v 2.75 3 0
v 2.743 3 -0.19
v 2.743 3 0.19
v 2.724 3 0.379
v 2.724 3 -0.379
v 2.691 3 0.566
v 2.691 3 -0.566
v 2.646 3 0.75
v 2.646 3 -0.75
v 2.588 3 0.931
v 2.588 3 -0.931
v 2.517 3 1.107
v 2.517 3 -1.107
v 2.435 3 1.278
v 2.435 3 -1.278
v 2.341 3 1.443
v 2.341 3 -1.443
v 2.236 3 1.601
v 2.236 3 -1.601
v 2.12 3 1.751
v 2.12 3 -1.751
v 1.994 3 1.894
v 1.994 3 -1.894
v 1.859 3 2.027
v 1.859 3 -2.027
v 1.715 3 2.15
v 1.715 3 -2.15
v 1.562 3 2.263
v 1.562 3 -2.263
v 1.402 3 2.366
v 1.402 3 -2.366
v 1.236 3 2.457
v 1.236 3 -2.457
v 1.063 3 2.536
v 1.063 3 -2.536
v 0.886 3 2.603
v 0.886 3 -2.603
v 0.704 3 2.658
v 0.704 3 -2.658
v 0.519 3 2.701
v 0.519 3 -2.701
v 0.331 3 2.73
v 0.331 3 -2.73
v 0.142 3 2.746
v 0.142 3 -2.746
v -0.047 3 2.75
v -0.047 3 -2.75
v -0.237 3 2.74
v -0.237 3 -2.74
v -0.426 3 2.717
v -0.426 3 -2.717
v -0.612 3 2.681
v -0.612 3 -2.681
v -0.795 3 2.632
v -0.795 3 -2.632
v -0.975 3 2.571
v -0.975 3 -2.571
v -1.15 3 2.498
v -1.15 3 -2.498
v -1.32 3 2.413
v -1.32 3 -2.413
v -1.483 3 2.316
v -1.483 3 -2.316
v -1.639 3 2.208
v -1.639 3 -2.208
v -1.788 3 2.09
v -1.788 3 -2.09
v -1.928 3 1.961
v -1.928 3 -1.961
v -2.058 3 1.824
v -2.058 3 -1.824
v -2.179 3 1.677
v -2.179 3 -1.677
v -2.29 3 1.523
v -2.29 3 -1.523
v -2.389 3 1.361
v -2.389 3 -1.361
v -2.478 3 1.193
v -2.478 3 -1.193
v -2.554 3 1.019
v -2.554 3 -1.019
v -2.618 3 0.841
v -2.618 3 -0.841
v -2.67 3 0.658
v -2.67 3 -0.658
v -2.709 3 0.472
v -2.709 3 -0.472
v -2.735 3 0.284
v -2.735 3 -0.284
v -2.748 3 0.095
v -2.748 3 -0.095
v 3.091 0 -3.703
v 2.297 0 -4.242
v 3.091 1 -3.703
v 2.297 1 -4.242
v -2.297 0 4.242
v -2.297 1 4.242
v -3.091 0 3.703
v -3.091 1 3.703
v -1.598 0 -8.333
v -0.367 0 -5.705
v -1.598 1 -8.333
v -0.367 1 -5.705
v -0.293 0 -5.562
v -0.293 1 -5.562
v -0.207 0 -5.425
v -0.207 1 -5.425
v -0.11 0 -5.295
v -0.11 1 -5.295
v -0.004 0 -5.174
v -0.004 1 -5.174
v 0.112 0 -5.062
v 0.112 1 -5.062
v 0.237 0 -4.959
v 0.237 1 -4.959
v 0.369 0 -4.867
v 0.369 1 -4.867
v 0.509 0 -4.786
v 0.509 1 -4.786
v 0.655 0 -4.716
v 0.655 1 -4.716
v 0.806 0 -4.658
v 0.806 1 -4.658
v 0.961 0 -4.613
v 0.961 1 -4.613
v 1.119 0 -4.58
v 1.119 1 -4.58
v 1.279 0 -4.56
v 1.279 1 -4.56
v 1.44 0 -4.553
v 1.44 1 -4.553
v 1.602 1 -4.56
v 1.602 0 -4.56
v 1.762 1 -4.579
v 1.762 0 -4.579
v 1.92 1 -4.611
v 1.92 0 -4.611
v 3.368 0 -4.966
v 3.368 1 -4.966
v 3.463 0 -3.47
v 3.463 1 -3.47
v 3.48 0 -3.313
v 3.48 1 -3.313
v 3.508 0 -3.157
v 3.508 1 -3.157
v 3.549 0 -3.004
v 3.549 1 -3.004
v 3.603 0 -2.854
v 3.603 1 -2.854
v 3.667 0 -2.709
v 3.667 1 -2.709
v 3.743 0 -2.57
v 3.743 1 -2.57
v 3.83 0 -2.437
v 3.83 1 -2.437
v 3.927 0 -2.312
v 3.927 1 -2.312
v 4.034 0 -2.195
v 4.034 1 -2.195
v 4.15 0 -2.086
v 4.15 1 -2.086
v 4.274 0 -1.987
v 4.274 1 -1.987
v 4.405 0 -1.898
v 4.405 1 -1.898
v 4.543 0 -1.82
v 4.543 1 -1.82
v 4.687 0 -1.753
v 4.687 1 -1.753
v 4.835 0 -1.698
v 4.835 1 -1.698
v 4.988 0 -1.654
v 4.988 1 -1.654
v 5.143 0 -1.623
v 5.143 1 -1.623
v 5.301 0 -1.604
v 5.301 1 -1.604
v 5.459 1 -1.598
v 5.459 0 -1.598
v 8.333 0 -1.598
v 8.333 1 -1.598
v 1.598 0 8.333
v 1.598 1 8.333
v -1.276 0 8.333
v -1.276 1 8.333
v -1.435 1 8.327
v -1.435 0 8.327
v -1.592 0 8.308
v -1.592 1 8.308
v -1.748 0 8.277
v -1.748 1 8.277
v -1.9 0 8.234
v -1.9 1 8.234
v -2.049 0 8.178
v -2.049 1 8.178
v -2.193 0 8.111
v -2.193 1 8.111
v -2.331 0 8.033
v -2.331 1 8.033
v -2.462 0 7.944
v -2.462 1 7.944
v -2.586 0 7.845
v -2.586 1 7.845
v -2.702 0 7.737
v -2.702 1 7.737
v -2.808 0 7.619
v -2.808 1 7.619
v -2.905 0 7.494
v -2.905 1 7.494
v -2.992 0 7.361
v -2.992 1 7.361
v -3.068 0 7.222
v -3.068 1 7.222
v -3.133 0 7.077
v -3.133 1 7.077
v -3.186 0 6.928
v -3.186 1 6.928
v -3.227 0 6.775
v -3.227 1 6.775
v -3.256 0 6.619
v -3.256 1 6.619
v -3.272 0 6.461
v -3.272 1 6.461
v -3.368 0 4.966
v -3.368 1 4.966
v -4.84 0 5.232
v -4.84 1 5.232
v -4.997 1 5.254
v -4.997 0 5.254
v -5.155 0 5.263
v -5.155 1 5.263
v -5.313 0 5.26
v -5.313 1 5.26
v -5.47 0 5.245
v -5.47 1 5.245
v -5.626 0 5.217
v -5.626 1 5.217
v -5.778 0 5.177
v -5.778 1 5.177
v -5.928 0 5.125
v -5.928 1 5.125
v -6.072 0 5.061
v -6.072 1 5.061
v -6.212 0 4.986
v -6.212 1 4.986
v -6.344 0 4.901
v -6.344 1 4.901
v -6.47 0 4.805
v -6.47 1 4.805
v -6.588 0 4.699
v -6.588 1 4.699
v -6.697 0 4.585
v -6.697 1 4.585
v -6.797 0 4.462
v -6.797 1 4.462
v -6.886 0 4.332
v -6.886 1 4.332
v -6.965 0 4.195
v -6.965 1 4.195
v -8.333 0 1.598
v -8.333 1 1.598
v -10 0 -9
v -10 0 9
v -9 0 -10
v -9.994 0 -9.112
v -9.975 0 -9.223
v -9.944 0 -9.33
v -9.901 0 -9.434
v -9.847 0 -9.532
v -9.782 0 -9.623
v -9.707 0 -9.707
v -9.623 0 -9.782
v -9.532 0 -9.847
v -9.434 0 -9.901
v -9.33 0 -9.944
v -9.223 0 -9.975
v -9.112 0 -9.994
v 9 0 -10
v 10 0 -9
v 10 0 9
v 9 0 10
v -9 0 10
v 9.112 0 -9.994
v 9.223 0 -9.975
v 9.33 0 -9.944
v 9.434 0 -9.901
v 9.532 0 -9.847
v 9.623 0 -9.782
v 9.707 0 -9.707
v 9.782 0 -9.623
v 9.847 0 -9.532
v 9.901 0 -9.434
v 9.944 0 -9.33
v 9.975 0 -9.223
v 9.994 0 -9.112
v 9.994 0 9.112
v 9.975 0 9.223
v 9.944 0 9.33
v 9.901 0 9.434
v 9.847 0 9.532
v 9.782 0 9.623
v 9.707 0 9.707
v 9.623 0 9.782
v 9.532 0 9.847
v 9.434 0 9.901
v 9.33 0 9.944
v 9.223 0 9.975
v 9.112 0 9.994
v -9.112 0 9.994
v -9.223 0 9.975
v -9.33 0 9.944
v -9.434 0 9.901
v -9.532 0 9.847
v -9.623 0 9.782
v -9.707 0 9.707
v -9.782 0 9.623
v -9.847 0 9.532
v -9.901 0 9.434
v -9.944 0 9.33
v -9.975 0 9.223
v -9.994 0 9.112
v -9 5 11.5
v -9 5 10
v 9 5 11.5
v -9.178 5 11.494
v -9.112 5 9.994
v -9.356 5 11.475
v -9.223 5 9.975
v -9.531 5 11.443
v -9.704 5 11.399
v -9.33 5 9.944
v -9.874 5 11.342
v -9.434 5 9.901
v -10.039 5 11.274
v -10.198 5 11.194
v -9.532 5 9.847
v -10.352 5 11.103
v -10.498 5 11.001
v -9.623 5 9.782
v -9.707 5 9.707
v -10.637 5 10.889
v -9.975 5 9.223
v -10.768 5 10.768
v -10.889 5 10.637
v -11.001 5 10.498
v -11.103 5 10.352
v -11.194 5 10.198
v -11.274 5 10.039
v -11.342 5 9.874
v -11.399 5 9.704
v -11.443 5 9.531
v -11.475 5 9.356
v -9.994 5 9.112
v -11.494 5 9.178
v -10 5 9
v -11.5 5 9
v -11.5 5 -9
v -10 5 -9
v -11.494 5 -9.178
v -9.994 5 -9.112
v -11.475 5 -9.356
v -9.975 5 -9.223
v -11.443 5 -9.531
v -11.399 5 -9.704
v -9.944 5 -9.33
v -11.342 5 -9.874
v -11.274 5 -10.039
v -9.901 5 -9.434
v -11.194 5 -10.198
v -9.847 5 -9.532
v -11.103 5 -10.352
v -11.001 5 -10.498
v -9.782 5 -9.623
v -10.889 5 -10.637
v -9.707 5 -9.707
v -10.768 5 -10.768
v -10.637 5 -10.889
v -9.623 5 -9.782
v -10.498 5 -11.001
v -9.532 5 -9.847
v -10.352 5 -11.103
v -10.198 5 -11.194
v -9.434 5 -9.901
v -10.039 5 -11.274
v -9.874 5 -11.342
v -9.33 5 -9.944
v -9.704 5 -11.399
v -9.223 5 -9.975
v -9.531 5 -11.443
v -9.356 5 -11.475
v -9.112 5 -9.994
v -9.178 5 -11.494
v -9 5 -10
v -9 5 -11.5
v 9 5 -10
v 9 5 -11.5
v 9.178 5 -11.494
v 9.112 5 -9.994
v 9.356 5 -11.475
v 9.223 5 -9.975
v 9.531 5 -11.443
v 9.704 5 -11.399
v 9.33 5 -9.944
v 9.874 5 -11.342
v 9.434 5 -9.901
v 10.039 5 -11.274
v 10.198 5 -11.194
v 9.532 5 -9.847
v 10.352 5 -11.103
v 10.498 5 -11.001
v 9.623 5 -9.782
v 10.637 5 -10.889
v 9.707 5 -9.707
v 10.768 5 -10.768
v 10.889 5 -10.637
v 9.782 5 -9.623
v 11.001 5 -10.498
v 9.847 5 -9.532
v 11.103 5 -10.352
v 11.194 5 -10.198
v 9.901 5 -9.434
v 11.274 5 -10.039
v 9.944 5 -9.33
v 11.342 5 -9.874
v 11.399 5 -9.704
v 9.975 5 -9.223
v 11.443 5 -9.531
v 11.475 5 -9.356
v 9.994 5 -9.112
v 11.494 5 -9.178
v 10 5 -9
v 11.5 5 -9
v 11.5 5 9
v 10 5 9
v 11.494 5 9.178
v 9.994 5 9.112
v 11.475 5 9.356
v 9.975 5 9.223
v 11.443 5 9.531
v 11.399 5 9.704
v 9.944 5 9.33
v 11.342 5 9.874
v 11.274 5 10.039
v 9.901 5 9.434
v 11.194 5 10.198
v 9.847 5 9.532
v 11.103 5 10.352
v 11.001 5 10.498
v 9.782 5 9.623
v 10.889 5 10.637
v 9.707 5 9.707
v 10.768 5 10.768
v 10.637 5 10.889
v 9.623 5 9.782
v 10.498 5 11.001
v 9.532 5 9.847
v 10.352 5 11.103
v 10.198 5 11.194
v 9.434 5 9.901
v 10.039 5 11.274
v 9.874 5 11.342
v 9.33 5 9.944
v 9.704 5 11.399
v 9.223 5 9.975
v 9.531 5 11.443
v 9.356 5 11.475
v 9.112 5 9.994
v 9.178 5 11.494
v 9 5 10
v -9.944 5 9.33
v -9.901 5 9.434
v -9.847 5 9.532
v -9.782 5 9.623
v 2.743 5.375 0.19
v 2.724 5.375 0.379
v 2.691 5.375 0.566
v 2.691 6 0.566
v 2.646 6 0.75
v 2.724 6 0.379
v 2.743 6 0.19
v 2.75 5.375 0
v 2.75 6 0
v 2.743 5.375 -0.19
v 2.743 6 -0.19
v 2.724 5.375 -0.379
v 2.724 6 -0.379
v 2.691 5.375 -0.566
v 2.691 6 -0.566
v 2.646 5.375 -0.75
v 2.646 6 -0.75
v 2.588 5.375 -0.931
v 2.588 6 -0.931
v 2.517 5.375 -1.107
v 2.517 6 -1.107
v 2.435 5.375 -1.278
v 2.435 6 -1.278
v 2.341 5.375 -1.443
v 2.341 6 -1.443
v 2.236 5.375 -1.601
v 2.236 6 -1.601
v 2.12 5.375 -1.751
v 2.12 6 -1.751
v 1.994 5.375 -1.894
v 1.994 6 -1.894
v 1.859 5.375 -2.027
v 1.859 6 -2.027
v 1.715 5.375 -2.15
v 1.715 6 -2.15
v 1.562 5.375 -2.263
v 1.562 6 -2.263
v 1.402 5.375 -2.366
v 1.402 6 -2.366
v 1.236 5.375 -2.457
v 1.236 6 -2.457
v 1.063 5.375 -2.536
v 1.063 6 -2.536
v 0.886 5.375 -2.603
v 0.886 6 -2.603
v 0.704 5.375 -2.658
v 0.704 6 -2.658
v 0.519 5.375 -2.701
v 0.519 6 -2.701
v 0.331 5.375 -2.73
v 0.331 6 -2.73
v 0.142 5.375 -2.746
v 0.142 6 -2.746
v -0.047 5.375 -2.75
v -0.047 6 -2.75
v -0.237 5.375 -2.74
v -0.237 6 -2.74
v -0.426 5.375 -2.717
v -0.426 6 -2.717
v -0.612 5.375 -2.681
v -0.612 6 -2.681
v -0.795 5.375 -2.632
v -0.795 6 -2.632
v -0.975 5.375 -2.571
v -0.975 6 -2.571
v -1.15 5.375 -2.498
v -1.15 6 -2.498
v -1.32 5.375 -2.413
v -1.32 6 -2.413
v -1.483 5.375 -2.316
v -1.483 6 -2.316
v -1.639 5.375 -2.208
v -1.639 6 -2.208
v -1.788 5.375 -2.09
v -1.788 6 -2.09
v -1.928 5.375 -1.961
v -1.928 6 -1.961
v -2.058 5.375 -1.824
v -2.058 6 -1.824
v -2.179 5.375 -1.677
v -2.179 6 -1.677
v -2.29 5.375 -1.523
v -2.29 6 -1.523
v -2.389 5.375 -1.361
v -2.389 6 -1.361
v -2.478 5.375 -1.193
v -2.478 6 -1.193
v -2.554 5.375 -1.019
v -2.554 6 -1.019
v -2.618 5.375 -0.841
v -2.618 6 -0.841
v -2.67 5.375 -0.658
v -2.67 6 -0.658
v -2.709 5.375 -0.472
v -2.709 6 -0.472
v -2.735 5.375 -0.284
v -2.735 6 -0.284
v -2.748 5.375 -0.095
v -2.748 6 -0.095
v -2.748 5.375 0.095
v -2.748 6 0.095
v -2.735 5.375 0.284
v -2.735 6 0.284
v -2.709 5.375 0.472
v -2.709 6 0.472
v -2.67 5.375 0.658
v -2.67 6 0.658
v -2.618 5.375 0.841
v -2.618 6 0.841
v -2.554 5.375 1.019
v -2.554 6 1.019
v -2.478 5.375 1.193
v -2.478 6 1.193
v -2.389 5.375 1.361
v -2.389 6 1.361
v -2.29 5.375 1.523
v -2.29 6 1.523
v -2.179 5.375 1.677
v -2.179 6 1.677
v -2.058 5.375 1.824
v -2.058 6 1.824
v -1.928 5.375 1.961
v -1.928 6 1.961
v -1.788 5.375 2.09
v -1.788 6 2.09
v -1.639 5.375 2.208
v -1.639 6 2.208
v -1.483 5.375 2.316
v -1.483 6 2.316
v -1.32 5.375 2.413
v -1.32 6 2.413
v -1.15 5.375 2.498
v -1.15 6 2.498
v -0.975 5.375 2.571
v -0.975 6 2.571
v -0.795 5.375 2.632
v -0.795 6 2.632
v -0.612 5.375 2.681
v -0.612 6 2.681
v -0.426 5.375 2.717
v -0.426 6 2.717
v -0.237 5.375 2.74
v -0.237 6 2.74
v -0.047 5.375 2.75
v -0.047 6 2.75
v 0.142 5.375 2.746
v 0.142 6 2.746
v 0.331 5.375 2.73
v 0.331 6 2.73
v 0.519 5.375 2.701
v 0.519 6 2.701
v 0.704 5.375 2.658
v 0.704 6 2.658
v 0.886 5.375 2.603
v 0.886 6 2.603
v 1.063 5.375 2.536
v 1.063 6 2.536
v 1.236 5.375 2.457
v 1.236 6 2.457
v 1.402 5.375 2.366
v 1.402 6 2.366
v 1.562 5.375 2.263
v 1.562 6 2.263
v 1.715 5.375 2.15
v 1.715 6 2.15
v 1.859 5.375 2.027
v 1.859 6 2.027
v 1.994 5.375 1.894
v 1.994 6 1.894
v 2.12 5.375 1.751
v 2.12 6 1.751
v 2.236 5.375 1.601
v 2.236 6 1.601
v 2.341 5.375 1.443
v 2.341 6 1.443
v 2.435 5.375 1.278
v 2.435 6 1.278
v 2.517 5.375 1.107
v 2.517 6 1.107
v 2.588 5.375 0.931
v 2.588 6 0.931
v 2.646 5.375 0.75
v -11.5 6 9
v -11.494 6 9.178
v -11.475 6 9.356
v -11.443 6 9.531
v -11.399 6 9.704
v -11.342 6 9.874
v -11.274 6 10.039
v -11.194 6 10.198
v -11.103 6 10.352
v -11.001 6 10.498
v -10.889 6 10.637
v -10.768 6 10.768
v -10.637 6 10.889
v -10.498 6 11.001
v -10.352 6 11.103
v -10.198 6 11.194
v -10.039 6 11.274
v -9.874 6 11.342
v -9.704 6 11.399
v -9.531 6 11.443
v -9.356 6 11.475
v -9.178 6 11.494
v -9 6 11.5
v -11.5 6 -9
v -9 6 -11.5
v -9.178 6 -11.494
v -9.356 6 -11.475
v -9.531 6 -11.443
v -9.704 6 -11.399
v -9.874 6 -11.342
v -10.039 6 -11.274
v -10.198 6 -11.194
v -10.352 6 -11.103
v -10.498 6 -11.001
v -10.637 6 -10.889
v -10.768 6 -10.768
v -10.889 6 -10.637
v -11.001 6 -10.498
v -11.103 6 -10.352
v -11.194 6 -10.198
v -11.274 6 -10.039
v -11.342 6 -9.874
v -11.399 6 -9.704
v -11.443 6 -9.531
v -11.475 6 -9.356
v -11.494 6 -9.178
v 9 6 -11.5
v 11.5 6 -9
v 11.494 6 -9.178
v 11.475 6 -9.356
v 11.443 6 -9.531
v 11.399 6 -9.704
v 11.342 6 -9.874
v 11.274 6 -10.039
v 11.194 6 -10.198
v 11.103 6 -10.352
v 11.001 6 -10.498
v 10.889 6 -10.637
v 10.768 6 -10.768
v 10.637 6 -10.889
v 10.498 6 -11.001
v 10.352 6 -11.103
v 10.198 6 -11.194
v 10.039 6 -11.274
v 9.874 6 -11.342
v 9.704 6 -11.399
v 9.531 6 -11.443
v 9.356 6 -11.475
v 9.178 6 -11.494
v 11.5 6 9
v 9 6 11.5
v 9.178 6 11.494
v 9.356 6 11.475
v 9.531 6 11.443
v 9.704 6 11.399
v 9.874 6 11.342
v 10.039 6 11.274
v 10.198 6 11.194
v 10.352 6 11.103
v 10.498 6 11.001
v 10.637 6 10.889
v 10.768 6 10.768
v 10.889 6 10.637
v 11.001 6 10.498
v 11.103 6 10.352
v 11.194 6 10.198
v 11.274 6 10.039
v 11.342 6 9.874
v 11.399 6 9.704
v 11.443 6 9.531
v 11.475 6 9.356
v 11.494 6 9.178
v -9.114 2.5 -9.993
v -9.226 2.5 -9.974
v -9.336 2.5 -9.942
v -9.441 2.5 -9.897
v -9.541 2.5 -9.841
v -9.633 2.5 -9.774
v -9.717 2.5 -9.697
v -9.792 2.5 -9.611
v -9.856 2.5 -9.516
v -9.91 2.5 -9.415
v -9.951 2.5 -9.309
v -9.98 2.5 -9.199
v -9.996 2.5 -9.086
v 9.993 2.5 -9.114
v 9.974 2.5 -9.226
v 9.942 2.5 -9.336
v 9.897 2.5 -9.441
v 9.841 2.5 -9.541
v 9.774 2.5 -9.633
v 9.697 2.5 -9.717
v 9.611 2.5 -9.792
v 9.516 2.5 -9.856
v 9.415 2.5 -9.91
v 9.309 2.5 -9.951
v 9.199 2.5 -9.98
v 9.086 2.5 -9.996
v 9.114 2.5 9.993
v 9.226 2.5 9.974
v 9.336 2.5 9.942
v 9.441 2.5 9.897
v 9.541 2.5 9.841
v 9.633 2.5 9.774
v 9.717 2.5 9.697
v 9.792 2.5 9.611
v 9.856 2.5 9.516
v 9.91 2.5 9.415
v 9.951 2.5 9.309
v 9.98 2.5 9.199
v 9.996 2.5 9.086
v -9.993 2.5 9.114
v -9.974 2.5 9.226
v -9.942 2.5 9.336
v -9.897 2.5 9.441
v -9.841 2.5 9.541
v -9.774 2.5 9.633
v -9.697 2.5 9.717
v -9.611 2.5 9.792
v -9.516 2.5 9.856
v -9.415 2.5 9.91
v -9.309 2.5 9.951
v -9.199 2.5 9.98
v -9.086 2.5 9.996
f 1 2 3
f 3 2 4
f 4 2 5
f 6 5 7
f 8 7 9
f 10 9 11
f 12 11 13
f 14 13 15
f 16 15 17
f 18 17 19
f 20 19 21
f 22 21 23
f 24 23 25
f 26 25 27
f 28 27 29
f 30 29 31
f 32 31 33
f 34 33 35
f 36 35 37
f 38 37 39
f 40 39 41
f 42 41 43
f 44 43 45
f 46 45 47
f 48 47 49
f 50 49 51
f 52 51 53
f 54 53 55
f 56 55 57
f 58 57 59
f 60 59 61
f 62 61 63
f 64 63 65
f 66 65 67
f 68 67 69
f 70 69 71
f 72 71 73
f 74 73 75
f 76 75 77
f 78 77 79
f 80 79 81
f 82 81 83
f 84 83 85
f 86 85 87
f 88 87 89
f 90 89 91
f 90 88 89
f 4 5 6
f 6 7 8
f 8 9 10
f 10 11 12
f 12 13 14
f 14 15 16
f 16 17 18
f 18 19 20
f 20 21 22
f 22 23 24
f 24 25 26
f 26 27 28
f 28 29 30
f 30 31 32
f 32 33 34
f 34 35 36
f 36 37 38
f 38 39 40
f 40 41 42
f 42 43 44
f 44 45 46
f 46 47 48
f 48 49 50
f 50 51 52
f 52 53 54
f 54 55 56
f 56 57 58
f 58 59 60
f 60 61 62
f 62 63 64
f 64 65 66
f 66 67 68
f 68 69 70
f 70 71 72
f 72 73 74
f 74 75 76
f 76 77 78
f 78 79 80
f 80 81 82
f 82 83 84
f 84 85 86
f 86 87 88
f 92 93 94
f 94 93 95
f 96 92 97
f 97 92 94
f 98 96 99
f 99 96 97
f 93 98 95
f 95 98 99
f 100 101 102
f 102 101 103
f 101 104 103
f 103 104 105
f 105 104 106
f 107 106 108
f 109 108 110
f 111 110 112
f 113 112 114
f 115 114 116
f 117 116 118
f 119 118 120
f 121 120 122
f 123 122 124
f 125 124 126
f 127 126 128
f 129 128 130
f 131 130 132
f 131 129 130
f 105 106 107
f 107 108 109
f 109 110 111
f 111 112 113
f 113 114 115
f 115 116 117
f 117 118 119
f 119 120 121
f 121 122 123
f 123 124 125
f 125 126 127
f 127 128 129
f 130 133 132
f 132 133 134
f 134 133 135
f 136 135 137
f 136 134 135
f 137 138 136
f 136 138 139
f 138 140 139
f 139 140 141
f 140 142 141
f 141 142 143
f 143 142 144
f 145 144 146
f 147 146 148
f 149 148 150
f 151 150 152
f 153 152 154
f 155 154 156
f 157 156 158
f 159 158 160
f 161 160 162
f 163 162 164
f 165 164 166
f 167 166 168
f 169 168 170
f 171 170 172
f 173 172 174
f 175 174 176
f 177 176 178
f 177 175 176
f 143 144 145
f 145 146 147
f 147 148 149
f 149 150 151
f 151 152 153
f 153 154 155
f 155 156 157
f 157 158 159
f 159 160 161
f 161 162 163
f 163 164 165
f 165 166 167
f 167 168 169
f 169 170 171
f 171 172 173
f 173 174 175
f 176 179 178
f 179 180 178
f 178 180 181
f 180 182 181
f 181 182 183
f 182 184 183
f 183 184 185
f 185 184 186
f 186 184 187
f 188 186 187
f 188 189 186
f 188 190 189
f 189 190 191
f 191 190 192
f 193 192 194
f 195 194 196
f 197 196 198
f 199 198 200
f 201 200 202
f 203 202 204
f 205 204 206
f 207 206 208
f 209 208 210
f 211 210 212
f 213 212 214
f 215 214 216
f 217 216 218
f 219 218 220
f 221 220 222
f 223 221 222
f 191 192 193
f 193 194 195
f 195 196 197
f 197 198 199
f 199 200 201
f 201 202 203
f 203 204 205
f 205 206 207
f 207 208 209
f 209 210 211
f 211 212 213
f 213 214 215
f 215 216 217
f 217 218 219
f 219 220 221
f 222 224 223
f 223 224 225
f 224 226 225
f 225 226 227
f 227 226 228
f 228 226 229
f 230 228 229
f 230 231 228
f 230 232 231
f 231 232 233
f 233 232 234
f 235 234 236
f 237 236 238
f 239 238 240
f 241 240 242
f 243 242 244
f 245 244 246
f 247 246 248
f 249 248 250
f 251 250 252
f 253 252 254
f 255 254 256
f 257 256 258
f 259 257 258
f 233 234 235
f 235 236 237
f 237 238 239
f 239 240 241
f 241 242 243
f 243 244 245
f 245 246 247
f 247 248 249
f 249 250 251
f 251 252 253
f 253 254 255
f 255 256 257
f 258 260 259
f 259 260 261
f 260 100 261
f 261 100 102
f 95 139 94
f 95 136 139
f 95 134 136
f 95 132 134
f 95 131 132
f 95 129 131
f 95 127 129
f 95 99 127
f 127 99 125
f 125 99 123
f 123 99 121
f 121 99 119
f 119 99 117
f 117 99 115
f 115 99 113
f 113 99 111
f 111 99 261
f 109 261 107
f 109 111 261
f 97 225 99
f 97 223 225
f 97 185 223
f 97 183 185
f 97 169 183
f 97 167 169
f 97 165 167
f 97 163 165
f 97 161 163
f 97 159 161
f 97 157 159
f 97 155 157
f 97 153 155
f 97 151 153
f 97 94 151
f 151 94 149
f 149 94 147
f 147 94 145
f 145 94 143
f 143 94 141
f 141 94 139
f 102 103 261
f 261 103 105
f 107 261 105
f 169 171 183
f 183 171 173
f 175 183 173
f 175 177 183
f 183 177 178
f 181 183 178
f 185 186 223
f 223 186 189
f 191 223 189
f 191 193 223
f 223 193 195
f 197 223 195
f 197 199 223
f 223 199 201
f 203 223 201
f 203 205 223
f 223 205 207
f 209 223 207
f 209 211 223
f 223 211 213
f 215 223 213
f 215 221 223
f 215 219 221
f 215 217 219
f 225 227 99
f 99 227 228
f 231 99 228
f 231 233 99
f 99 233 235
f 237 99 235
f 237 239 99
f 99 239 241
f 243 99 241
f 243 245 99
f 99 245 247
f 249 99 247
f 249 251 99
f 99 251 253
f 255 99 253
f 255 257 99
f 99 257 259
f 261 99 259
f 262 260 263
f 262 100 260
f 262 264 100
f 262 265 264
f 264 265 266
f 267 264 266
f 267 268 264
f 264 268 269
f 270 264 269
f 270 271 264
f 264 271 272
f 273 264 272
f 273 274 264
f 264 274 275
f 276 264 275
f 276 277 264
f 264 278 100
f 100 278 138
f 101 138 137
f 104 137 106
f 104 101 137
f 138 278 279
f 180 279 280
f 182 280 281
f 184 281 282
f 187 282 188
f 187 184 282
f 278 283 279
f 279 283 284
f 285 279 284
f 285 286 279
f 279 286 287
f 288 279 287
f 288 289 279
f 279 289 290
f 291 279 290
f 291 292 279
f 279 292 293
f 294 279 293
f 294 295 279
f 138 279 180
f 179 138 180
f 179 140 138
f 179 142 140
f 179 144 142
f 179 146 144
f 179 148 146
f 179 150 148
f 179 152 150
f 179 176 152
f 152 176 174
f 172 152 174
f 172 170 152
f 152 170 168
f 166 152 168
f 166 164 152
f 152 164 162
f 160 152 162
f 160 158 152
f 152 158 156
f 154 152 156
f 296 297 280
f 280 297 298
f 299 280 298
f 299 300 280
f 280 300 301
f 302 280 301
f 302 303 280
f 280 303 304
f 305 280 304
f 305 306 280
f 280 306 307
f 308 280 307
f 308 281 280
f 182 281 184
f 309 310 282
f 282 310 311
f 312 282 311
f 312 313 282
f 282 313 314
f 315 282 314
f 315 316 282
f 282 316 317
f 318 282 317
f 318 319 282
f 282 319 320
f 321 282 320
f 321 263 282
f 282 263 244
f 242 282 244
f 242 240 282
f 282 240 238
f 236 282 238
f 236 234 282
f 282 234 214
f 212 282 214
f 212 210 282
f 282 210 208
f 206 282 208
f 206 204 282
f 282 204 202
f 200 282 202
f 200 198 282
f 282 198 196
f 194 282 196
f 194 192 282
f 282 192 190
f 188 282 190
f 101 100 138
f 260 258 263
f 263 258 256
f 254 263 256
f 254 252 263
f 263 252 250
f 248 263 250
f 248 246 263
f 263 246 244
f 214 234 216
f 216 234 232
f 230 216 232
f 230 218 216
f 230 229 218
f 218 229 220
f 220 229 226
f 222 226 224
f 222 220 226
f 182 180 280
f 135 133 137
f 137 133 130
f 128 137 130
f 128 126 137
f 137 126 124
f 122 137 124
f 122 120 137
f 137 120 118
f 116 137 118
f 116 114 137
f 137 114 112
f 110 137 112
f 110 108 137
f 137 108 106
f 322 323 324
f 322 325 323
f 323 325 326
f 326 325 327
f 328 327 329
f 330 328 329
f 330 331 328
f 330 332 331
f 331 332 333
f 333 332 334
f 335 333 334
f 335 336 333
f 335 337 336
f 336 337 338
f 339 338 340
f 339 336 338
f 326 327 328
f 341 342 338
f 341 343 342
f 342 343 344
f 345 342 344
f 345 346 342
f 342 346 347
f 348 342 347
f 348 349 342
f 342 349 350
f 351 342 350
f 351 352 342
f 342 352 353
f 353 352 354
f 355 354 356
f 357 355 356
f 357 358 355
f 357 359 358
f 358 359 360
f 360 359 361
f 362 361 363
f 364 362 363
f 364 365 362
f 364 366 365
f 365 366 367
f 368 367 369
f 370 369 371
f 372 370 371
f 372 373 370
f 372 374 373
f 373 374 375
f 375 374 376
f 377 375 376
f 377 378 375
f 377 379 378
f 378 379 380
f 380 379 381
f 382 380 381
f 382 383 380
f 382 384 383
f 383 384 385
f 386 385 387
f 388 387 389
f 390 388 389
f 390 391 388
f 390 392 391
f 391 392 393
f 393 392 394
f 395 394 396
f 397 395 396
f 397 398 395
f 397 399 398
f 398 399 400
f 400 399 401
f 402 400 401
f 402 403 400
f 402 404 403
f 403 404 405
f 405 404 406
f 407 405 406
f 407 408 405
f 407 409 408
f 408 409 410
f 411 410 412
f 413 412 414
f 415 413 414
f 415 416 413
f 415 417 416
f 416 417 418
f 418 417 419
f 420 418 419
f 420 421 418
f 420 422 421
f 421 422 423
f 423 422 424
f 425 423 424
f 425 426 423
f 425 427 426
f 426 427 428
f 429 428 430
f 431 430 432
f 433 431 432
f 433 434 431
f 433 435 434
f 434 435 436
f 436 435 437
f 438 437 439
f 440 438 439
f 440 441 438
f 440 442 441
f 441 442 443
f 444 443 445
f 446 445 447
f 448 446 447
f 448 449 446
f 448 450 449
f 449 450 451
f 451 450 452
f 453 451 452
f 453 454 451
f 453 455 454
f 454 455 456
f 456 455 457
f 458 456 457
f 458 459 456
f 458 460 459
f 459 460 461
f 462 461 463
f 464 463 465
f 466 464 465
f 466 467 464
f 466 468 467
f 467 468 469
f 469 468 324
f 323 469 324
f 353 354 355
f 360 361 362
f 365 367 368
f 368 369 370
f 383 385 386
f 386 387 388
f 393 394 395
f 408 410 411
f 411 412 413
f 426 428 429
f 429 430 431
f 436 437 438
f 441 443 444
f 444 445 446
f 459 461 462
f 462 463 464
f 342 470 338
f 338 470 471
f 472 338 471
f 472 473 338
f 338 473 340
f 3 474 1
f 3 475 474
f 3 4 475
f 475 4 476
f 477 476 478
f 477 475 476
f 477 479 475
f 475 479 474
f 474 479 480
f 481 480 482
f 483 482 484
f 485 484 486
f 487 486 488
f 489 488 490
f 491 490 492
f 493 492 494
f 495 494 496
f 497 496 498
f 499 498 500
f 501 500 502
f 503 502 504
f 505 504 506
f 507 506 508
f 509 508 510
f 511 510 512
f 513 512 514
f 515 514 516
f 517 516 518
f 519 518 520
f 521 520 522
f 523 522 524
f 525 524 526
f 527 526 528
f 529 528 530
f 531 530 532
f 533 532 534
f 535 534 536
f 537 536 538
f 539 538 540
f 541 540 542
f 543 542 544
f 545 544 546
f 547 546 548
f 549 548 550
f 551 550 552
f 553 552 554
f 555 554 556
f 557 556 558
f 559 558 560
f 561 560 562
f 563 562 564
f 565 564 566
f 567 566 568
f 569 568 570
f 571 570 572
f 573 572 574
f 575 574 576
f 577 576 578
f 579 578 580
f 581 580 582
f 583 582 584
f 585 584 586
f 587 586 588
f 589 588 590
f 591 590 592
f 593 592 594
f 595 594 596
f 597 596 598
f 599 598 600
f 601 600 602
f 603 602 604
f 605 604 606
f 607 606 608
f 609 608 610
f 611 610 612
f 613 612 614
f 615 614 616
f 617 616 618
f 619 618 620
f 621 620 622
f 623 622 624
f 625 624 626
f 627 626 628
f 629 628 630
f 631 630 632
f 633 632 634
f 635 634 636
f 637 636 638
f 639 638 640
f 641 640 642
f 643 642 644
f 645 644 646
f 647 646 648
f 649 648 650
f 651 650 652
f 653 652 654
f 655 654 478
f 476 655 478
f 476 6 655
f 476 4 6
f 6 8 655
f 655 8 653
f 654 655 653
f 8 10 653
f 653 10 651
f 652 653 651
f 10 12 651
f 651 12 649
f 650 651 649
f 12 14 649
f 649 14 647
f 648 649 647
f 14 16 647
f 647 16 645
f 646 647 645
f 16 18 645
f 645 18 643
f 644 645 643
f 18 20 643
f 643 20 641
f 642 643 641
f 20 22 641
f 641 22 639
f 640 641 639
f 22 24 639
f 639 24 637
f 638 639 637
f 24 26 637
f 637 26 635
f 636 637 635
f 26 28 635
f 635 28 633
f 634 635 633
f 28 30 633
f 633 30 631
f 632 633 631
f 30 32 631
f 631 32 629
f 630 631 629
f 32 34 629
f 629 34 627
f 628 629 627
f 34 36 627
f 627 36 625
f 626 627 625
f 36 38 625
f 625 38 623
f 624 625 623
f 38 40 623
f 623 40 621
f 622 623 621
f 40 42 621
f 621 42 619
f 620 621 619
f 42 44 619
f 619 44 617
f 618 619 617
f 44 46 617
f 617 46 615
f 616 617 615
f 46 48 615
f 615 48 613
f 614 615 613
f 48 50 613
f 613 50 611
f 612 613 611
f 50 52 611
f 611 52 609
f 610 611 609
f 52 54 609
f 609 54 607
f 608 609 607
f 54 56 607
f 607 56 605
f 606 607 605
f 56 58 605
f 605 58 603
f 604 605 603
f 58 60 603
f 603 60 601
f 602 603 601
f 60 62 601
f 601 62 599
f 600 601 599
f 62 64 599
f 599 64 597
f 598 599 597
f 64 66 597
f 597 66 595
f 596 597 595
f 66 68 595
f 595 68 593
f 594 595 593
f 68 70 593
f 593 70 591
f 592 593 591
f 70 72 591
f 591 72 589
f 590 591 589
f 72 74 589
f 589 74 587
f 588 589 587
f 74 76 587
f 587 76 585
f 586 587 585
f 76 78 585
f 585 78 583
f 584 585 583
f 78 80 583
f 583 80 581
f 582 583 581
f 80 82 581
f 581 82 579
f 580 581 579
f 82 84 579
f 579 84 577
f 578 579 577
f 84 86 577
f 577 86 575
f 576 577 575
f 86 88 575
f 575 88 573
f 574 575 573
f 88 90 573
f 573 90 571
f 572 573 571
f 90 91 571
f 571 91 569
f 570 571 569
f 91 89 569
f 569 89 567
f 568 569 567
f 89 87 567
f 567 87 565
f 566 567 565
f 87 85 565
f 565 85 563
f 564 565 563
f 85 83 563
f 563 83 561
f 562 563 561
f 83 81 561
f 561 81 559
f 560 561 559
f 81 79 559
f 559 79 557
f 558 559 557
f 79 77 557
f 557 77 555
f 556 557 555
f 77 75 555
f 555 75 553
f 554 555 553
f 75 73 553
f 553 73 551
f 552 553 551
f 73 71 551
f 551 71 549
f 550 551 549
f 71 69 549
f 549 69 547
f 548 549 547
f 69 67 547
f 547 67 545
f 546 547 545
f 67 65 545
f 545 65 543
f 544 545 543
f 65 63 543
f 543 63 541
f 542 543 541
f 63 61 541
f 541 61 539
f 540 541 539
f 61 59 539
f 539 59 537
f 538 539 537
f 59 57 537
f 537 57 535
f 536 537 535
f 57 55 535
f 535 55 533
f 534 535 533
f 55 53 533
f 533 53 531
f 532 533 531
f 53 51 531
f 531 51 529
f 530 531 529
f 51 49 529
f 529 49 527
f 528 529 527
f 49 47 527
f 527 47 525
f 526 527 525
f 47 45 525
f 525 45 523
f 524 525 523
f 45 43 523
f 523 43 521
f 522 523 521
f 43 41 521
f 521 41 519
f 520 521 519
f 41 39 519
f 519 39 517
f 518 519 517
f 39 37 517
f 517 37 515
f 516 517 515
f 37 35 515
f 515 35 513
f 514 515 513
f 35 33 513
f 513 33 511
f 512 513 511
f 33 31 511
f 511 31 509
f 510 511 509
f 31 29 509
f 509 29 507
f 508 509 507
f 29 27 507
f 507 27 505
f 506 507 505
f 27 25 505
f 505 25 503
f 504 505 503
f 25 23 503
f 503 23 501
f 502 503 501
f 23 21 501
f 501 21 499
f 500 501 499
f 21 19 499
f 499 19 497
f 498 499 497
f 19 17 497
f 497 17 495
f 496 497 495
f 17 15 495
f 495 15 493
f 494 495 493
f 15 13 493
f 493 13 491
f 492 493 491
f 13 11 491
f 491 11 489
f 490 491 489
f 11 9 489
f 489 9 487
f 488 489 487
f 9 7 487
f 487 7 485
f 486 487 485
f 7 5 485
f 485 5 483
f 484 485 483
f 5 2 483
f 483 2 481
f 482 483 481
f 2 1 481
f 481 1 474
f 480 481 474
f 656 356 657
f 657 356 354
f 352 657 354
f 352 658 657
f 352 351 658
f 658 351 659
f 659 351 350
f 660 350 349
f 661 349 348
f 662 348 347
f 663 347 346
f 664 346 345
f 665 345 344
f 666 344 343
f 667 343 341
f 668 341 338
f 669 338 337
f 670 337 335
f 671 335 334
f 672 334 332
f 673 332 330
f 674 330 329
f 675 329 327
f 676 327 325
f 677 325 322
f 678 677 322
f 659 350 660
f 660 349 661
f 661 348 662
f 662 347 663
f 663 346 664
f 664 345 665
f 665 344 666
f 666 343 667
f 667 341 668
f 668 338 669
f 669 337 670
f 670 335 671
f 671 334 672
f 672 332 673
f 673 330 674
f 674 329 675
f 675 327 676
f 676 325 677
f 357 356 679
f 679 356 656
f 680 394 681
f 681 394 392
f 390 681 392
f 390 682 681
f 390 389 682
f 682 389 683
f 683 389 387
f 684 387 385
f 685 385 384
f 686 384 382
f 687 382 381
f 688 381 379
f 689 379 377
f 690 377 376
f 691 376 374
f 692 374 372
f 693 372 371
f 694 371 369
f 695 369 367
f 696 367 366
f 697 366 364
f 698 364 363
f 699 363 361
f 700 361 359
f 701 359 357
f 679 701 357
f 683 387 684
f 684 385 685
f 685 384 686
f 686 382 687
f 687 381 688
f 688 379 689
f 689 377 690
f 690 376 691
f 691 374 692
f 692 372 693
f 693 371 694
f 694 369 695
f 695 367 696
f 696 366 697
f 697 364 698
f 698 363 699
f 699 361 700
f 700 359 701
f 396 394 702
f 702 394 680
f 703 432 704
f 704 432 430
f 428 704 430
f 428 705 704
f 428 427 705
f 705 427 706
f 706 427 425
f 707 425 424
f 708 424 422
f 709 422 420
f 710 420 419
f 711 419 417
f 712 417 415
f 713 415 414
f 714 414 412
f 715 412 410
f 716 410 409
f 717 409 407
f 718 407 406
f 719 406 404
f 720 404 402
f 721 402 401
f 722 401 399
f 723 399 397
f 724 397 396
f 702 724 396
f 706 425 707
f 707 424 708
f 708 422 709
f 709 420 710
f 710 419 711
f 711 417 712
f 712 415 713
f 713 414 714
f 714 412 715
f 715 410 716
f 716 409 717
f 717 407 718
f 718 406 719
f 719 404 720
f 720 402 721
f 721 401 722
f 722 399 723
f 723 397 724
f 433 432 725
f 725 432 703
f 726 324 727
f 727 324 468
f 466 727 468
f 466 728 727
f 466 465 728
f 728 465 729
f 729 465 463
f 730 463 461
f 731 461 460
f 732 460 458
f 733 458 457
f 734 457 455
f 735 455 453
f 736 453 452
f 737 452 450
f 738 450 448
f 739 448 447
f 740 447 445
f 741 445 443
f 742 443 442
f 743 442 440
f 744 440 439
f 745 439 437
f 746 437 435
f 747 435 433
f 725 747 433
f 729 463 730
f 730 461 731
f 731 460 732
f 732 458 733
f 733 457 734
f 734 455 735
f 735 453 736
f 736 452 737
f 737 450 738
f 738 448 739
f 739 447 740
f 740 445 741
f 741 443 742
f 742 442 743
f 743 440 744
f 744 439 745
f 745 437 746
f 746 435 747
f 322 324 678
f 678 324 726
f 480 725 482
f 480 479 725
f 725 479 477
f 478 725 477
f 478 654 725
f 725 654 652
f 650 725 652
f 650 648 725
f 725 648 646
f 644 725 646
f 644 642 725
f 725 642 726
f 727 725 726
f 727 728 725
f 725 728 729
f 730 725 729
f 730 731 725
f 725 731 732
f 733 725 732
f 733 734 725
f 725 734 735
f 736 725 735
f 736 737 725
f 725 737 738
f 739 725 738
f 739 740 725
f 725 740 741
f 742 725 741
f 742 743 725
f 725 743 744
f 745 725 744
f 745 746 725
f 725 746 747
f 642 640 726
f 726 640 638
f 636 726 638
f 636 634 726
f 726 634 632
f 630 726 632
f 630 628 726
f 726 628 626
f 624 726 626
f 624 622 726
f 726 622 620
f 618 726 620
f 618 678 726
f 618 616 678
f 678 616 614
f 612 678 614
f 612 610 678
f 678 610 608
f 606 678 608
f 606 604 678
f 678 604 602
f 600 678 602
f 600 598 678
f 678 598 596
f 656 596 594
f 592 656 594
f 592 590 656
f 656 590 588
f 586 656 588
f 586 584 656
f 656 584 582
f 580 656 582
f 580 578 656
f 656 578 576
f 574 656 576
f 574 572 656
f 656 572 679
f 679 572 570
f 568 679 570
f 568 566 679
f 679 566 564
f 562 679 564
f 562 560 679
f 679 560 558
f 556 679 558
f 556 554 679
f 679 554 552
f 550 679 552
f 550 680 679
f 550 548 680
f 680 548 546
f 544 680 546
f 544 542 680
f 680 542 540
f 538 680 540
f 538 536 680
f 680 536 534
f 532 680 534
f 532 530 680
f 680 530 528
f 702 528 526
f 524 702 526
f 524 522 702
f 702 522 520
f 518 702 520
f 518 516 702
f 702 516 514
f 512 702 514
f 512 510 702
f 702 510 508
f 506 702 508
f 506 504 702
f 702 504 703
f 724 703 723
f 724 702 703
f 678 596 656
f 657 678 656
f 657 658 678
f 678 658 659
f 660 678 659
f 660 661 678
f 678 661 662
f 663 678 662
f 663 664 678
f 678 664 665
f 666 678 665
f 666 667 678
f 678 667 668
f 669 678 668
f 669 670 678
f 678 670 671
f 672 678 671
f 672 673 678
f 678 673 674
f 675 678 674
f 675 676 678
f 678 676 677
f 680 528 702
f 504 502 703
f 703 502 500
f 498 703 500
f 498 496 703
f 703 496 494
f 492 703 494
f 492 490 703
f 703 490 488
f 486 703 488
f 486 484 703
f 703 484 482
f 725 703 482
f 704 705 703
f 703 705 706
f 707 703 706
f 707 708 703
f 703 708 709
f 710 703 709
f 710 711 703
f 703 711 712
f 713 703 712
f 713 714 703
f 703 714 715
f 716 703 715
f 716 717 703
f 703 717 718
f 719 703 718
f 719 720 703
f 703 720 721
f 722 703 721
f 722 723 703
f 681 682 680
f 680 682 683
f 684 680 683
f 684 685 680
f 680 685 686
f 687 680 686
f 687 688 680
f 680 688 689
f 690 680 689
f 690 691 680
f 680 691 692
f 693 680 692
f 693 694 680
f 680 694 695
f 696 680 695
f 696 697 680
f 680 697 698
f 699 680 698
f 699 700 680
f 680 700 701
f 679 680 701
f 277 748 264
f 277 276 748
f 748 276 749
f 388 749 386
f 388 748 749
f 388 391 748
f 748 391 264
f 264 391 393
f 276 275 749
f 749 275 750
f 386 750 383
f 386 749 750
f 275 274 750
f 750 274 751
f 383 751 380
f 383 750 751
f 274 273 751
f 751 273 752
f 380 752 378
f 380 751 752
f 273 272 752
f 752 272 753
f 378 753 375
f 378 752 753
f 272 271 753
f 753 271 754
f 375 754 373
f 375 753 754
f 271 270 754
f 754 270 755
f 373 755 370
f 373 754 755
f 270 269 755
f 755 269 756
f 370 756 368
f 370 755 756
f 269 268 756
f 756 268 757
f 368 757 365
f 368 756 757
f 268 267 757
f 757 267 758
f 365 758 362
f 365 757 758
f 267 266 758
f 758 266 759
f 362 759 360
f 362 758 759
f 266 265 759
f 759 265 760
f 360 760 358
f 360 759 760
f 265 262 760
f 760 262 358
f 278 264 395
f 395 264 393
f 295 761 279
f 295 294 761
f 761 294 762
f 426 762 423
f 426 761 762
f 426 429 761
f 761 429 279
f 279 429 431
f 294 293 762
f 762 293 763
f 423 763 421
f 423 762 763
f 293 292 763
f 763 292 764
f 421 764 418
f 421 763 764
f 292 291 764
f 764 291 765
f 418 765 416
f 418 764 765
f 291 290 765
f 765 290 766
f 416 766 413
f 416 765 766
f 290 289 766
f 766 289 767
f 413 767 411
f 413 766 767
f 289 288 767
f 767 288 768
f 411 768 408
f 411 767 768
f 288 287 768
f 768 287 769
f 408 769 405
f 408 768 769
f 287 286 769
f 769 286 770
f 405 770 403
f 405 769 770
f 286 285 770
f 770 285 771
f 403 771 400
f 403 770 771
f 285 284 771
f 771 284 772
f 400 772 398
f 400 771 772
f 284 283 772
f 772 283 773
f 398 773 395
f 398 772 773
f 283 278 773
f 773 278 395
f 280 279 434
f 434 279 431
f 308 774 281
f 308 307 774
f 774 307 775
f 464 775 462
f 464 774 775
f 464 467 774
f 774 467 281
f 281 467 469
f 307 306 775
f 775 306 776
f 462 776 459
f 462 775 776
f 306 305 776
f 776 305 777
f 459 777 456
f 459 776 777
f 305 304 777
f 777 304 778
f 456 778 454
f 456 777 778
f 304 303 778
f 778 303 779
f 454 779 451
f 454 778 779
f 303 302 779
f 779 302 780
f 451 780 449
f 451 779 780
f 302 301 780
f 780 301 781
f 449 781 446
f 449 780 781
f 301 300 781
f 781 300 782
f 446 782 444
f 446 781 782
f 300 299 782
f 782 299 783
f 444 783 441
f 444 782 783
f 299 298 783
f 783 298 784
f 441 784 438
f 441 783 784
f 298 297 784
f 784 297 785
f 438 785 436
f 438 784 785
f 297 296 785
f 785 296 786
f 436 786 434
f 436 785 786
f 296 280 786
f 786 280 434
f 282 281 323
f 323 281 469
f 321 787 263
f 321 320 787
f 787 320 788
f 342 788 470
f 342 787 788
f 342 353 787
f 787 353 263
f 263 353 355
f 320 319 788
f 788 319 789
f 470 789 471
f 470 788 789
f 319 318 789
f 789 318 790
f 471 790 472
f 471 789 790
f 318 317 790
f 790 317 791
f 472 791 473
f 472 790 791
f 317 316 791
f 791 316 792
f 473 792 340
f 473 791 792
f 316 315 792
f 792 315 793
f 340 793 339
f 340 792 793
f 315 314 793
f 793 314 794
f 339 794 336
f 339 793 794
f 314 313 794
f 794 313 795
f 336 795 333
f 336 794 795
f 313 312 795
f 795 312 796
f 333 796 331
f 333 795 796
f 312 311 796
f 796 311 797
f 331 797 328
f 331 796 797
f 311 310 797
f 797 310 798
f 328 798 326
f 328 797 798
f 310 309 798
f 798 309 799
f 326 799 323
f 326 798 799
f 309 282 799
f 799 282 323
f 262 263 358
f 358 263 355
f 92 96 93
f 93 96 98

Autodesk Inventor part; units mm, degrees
ref_plane "YZ Plane" through (0, 0, 0) normal (1, 0, 0) x (0, 1, 0)
ref_plane "XZ Plane" through (0, 0, 0) normal (0, 1, 0) x (-1, 0, 0)
ref_plane "XY Plane" through (0, 0, 0) normal (0, 0, 1) x (1, 0, 0)
sketch "Sketch1" plane through (0, 0, 0) normal (0, 1, 0) x (-1, 0, 0)
  line L0 (9, -10) -> (-9, -10)
  line L1 (-10, -9) -> (-10, 9)
  line L2 (-9, 10) -> (9, 10)
  line L3 (10, 9) -> (10, -9)
  line L4 (10, 10) -> (-10, -10) construction
  line L5 (10, -10) -> (-10, 10) construction
  arc A0 (10, 9) -> (9, 10) centre (9, 9) ccw
  arc A1 (9, -10) -> (10, -9) centre (9, -9) ccw
  arc A2 (-10, -9) -> (-9, -10) centre (-9, -9) ccw
  arc A3 (-9, 10) -> (-10, 9) centre (-9, 9) ccw
  point P0 (0, 0)
  point P1 (0, 0)
  dimension "d7" = 20
  dimension "d9" = 20
  dimension "d10" = 1
extrude "Extrusion1" add sketch "Sketch1" along normal blind 5
sketch "Sketch2" plane through (0, 5, 0) normal (0, 1, 0) x (1, 0, 0)
  line L0 (-10, 9) -> (-10, -9) projected
  arc A0 (-10, -9) -> (-9, -10) centre (-9, -9) ccw projected
  line L1 (-9, -10) -> (9, -10) projected
  arc A1 (9, -10) -> (10, -9) centre (9, -9) ccw projected
  line L2 (10, -9) -> (10, 9) projected
  arc A2 (10, 9) -> (9, 10) centre (9, 9) ccw projected
  line L3 (9, 10) -> (-9, 10) projected
  arc A3 (-9, 10) -> (-10, 9) centre (-9, 9) ccw projected
  line L4 (9, -11.5) -> (-9, -11.5)
  arc A4 (-11.5, -9) -> (-9, -11.5) centre (-9, -9) ccw
  line L5 (-11.5, -9) -> (-11.5, 9)
  arc A5 (-9, 11.5) -> (-11.5, 9) centre (-9, 9) ccw
  line L6 (-9, 11.5) -> (9, 11.5)
  arc A6 (11.5, 9) -> (9, 11.5) centre (9, 9) ccw
  line L7 (11.5, 9) -> (11.5, -9)
  arc A7 (9, -11.5) -> (11.5, -9) centre (9, -9) ccw
  circle A8 centre (0, 0) radius 2.75
  dimension "d16" = 1.5
  dimension "d19" = 5.5
extrude "Extrusion3" add sketch "Sketch2" along normal blind 1 contours A3 L3 A2 L2 A1 L1 A0 L0 | L4 A4 L5 A5 L6 A6 L7 A7
sketch "Sketch3" plane through (0, 0, 0) normal (0, -1, 0) x (1, 0, 0)
  line L0 (-8.3335, 1.5979) -> (-1.5979, -8.3335)
  line L1 (-1.5979, -8.3335) -> (-0.3669, -5.7051)
  line L2 (1.9204, -4.6109) -> (3.3678, -4.9657)
  line L3 (3.3678, -4.9657) -> (3.4632, -3.4705)
  line L4 (5.4592, -1.5979) -> (8.3335, -1.5979)
  line L5 (8.3335, -1.5979) -> (1.5979, 8.3335)
  line L6 (1.5979, 8.3335) -> (-1.2764, 8.3335)
  line L7 (-3.2724, 6.4609) -> (-3.3678, 4.9657)
  line L8 (-3.3678, 4.9657) -> (-4.8403, 5.2316)
  line L9 (-6.9654, 4.1955) -> (-8.3335, 1.5979)
  line L10 (-3.3678, 4.9657) -> (3.3678, -4.9657) construction
  arc A0 (-4.8403, 5.2316) -> (-6.9654, 4.1955) centre (-5.1958, 3.2635) ccw
  arc A1 (-1.2764, 8.3335) -> (-3.2724, 6.4609) centre (-1.2764, 6.3335) ccw
  arc A2 (5.4592, -1.5979) -> (3.4632, -3.4705) centre (5.4592, -3.5979) ccw
  arc A3 (1.9204, -4.6109) -> (-0.3669, -5.7051) centre (1.4443, -6.5534) ccw
  line L11 (-4.9657, -3.3678) -> (0, 0) construction
  line L12 (0, 0) -> (4.9657, 3.3678) construction
  line L13 (-2.6449, 7.792) -> (4.0907, -2.1393) construction
  line L14 (-2.7456, 0.156) -> (0.8707, 2.6085) construction
  circle A4 centre (0, 0) radius 2.75 construction
  line L15 (-6.0723, 5.0611) -> (0.5812, -4.7492) construction
  line L16 (-3.0915, 3.7031) -> (2.297, -4.242)
  line L17 (2.297, -4.242) -> (3.0915, -3.7031)
  line L18 (3.0915, -3.7031) -> (-2.297, 4.242)
  line L19 (-2.297, 4.242) -> (-3.0915, 3.7031)
  point P0 (-0.9375, 1.3822)
  point P1 (-2.6942, 3.9725)
  point P2 (2.6942, -3.9725)
  point P3 (-0.3973, -0.2694)
  dimension "d77" = 2
  dimension "d78" = 12
  dimension "d79" = 12
  dimension "d80" = 12
  dimension "d81" = 6
  dimension "d82" = 6
  dimension "d85" = 9.6
  dimension "d86" = 0.96
extrude "Extrusion7" cut sketch "Sketch3" against normal blind 1
extrude "Extrusion8" cut sketch "Sketch2" against normal blind 2 contours A8
equation "\"d7\" = button_side"
equation "\"d9\" = d7"
equation "\"d78\" = d79"
equation "\"d79\" = 0.6 * button_side"
equation "\"d80\" = d79"
equation "\"d81\" = d82"
equation "\"d82\" = 0.5 * d79"
equation "\"d85\" = 0.8 * d80"
equation "\"d86\" = 0.1 * d85"
equation "\"d0\" = 122"
equation "\"d1\" = 77"
equation "\"d4\" = 19"
equation "\"d5\" = 1"
equation "\"d8\" = 25"
equation "\"d13\" = 1.5"
equation "\"d14\" = 0"
equation "\"d15\" = 2"
equation "\"d30\" = 3.1"
equation "\"d31\" = 3"
equation "\"d33\" = 3"
equation "\"d34\" = 2"
equation "\"d36\" = 3"
equation "\"d38\" = 90deg"
equation "\"d39\" = 8"
equation "\"d40\" = 118deg"
equation "\"d44\" = 0"
equation "\"d45\" = 1.2"
equation "\"d46\" = 2"
equation "\"d47\" = 0"
equation "\"d50\" = 25"
equation "\"button_side\" = 20"
equation "\"d3\" = 1.01 * button_side"
equation "\"d2\" = d3"
properties part number "button4" material "Bronze, Soft Tin"
